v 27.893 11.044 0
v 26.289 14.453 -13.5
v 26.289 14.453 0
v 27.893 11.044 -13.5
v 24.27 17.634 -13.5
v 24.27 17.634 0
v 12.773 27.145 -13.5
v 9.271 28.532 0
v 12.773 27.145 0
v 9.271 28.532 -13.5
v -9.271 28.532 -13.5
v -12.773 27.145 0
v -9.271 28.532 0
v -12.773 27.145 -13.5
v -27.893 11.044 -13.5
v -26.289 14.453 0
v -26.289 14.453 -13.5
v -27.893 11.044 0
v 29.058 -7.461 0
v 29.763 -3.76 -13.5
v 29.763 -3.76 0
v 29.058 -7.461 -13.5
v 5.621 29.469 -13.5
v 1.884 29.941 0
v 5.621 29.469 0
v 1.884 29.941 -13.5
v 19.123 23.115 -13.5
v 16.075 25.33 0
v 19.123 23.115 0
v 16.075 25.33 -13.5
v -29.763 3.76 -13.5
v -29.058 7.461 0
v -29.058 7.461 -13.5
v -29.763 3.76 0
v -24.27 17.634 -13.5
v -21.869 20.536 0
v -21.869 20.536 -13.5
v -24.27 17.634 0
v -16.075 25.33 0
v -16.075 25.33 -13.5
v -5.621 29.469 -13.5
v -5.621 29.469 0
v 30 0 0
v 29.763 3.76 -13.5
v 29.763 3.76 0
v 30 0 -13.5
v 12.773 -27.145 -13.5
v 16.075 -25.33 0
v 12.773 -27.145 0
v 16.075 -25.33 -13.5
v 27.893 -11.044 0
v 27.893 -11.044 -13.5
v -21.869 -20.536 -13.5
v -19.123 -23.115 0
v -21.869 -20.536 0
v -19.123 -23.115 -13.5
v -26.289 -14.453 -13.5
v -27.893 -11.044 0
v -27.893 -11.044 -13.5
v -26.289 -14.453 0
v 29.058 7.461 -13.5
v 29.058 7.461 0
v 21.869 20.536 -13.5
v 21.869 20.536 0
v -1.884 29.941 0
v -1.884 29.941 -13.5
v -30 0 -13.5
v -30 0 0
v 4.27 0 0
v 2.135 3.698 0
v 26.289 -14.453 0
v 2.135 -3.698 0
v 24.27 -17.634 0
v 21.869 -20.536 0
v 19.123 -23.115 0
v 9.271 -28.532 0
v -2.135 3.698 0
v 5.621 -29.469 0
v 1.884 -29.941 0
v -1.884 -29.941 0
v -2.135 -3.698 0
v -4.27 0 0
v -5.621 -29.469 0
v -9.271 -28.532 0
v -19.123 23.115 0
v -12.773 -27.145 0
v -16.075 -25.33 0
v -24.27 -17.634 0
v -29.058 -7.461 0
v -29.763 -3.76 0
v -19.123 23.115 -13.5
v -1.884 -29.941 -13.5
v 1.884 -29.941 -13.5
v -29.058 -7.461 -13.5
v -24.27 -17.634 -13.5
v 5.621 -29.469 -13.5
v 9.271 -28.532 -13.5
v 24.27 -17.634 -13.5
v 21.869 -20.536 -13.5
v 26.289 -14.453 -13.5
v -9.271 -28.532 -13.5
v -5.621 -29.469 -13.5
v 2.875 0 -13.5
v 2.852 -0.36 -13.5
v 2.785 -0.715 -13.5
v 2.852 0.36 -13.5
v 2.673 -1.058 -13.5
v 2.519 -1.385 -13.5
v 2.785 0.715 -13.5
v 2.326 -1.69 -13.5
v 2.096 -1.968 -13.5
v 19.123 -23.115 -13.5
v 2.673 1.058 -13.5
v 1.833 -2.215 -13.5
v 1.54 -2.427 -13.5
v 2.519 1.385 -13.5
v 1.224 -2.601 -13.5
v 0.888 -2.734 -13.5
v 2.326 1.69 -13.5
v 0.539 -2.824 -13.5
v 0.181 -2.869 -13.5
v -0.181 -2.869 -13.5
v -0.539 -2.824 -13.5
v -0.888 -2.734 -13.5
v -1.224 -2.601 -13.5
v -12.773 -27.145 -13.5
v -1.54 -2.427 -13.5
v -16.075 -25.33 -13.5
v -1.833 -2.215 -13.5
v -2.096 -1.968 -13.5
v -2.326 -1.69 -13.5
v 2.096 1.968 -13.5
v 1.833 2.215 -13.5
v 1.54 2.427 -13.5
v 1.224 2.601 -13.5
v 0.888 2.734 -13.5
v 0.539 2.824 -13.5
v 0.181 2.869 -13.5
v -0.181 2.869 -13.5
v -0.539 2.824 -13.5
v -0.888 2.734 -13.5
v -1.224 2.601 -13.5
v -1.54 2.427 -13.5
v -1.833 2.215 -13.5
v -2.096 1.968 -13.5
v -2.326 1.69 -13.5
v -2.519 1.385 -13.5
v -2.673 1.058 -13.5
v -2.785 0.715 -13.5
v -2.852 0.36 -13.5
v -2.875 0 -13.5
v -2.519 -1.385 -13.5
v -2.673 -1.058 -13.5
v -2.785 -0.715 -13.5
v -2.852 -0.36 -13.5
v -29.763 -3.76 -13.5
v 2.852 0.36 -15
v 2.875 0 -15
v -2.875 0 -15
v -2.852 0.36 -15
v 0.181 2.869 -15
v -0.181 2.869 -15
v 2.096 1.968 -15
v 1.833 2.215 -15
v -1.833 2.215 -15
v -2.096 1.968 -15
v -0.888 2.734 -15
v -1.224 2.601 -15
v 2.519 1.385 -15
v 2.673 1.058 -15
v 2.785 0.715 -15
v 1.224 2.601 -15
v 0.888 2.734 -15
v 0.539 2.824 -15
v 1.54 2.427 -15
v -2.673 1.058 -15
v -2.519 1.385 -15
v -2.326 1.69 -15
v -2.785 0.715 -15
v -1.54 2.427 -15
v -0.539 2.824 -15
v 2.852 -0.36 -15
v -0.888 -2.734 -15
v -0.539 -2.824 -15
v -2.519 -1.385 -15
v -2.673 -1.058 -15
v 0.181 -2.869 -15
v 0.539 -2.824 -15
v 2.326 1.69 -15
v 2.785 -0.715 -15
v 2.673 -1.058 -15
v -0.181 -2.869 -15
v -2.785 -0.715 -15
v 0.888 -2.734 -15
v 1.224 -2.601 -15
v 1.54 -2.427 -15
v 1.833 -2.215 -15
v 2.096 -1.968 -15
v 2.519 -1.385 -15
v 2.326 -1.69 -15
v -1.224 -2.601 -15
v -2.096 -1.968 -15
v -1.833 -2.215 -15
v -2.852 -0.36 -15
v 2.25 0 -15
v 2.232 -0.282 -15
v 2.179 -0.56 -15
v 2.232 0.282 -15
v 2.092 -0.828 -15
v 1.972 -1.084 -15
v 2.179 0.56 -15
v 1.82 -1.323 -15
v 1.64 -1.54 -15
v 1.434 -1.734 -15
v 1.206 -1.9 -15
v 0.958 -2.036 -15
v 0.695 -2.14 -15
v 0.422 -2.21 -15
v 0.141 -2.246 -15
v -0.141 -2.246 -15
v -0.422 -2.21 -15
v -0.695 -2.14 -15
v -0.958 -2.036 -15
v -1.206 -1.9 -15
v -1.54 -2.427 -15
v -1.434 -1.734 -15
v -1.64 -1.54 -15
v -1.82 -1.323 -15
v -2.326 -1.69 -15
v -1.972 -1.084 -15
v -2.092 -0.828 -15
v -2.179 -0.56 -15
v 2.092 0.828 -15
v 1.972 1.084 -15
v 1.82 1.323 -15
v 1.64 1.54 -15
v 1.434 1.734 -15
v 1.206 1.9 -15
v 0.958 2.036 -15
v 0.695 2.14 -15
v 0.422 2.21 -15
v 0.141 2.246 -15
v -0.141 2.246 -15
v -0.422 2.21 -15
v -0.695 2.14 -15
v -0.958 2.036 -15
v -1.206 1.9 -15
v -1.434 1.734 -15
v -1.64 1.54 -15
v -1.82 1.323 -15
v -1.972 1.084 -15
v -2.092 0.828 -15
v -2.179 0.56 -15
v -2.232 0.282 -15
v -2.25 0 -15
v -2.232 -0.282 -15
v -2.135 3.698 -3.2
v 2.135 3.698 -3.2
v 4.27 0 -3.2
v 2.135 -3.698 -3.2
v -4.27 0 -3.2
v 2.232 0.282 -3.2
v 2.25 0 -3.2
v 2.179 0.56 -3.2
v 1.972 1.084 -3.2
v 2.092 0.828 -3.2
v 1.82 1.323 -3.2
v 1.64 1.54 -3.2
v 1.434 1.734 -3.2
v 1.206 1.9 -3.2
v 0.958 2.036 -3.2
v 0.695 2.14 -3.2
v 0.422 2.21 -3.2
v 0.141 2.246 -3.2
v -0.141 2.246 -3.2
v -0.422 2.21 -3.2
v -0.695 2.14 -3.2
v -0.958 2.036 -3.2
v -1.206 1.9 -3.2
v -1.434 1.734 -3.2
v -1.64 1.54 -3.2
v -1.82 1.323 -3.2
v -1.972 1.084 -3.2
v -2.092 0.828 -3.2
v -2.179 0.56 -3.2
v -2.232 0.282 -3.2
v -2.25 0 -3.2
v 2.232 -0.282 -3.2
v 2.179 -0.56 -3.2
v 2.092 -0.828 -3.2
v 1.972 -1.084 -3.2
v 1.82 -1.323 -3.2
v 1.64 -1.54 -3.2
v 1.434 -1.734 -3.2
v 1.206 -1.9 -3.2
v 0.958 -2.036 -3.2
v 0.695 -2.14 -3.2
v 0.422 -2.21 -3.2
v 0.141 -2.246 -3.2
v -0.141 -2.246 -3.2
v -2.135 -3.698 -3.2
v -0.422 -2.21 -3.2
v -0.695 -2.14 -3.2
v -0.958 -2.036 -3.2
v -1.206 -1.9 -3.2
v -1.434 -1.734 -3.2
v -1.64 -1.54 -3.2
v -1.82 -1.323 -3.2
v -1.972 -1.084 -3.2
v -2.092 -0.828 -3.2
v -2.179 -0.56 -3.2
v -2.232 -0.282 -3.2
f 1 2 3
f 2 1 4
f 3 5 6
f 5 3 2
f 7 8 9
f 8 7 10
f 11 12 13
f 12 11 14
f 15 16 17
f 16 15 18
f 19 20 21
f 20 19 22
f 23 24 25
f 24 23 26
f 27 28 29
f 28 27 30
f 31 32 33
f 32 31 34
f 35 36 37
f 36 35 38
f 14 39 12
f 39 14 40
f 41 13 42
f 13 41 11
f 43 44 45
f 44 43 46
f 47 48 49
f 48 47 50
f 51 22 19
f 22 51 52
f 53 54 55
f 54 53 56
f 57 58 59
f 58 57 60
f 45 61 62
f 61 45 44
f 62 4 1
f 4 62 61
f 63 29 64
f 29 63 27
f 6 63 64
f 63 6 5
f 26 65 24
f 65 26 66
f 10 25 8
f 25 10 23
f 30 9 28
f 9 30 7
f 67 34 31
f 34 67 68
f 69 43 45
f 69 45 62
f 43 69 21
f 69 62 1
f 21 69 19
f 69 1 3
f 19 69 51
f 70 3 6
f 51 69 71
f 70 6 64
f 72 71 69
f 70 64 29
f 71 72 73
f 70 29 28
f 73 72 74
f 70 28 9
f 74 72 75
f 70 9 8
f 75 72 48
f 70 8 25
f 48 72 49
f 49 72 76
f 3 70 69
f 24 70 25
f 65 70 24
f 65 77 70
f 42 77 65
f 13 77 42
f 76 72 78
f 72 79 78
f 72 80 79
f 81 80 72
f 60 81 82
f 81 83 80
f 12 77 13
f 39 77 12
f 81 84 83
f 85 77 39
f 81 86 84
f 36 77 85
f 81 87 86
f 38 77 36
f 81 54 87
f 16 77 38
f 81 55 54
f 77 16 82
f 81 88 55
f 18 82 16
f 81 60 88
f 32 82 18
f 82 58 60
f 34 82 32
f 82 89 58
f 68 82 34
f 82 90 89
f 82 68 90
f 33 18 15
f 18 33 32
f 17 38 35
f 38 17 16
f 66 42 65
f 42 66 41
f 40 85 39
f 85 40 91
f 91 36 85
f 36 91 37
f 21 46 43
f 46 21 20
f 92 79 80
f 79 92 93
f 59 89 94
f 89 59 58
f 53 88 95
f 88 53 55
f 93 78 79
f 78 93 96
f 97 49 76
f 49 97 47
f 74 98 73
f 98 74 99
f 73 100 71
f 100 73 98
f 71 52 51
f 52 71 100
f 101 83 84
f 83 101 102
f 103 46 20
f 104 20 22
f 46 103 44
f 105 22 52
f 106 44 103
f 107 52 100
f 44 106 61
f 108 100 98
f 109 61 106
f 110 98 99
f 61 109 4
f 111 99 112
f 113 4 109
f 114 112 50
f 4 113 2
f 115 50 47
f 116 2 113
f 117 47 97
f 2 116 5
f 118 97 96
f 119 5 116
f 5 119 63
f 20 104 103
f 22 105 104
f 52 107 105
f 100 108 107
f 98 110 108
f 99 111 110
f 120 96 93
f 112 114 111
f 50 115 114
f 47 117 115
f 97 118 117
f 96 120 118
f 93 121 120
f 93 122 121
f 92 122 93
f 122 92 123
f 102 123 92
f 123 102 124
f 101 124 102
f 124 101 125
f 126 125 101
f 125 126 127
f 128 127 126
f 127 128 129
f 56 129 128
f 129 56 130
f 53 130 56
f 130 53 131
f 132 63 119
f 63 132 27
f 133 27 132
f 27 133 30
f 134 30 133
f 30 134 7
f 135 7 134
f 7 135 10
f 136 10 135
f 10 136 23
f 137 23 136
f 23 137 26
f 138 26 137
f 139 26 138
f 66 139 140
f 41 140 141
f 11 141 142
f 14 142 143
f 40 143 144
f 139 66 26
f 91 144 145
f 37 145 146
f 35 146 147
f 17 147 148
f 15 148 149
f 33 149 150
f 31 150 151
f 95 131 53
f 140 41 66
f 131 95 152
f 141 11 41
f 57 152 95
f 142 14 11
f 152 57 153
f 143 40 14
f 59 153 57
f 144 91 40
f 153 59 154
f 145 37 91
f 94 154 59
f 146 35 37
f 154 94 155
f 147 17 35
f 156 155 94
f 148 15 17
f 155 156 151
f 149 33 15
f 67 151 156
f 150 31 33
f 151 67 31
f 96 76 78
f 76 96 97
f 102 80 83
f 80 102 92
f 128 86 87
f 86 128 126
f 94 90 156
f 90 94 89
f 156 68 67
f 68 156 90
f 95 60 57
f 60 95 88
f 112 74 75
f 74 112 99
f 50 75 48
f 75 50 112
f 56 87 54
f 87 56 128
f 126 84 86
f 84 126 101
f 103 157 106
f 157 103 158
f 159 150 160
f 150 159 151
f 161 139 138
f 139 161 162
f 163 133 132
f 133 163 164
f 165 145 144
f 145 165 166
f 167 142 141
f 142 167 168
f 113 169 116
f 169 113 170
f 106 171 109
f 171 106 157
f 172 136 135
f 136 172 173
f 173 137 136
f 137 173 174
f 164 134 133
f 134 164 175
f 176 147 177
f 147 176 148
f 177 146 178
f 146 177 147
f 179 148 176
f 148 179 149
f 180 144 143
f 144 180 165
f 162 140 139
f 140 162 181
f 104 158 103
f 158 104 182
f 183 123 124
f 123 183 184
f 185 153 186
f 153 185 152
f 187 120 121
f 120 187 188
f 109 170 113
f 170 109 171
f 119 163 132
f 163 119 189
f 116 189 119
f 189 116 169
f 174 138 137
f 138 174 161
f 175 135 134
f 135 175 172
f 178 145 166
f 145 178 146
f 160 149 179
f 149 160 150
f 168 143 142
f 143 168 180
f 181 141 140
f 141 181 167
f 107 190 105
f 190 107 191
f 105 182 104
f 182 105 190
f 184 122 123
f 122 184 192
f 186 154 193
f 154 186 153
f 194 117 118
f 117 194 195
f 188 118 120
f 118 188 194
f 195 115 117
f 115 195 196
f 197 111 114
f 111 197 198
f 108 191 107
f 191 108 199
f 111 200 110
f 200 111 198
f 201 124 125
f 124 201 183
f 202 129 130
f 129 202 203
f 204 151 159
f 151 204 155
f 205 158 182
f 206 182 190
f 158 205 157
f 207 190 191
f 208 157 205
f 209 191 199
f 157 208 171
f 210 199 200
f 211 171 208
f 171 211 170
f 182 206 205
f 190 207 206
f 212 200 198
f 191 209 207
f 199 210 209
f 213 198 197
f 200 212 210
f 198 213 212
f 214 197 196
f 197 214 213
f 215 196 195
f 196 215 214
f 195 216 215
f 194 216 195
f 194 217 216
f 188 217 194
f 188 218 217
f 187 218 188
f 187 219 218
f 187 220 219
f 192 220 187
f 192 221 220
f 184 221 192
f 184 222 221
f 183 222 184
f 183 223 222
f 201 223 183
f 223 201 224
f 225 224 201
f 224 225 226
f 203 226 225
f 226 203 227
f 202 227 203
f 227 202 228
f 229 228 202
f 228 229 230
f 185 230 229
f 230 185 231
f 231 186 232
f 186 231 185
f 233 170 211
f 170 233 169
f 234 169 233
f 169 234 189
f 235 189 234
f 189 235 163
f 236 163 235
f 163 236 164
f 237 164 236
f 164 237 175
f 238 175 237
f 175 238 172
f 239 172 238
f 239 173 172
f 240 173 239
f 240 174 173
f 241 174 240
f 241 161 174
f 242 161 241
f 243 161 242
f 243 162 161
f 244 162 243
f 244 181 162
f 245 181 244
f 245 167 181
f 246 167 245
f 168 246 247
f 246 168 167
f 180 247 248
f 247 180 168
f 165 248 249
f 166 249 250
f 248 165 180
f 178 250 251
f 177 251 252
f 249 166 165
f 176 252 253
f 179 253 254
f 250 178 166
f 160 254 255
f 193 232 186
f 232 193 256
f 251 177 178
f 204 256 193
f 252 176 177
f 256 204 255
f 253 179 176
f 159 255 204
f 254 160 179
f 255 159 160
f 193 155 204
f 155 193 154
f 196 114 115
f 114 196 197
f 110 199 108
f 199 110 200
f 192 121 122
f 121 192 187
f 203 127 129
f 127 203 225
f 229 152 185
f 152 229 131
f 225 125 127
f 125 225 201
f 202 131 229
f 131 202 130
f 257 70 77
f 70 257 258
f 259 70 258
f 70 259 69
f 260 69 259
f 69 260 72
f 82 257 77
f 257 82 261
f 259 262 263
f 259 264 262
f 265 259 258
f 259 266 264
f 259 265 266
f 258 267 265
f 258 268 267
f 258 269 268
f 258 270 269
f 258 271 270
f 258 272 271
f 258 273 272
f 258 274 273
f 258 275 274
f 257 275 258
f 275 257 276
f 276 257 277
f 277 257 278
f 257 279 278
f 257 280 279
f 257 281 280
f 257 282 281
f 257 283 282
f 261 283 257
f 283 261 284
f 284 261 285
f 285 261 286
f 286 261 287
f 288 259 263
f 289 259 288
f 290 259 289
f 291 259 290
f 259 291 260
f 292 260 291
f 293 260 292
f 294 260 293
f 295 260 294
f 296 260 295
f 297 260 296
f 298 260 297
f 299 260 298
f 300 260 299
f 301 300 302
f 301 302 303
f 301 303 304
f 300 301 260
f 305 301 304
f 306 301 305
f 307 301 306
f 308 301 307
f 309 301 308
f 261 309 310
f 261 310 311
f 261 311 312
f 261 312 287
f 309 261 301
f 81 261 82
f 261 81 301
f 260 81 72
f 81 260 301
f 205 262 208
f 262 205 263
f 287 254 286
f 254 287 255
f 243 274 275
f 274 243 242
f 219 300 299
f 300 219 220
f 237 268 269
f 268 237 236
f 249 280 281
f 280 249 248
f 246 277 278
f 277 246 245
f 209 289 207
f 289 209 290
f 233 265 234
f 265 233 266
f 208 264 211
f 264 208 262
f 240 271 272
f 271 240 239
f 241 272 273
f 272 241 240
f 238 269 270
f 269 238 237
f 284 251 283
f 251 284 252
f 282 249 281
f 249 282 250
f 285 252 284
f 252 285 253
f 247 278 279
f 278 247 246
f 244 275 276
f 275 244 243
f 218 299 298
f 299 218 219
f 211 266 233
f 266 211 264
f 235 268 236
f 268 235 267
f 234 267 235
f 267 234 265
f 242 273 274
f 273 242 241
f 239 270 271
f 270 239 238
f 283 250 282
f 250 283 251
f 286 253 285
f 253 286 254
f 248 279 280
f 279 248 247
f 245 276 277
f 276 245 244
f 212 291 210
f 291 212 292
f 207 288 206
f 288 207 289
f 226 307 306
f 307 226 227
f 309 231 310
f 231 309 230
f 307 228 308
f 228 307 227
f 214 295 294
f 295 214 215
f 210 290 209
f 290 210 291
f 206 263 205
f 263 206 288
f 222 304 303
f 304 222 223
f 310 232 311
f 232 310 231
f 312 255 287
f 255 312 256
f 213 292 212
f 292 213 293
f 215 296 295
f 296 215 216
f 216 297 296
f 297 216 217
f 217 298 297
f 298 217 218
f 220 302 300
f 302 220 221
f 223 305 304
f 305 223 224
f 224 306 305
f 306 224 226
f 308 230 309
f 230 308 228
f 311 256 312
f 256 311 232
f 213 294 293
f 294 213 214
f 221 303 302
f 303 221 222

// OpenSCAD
$fn = 50;


difference() {
	union() {
		translate(v = [0, 0, -13.5000000000]) {
			cylinder(h = 13.5000000000, r = 30.0000000000);
		}
		#translate(v = [0, 0, -15.0000000000]) {
			cylinder(h = 15, r = 2.8750000000);
		}
	}
	union() {
		translate(v = [0, 0, 0]) {
			rotate(a = [0, 0, 0]) {
				difference() {
					union() {
						translate(v = [0, 0, -3.2000000000]) {
							linear_extrude(height = 3.2000000000) {
								polygon(points = [[4.2698000000, 0.0000000000], [2.1349000000, 3.6977552691], [-2.1349000000, 3.6977552691], [-4.2698000000, 0.0000000000], [-2.1349000000, -3.6977552691], [2.1349000000, -3.6977552691]]);
							}
						}
					}
					union();
				}
			}
		}
		#translate(v = [0, 0, -100.0000000000]) {
			cylinder(h = 200, r = 2.2500000000);
		}
	}
}
